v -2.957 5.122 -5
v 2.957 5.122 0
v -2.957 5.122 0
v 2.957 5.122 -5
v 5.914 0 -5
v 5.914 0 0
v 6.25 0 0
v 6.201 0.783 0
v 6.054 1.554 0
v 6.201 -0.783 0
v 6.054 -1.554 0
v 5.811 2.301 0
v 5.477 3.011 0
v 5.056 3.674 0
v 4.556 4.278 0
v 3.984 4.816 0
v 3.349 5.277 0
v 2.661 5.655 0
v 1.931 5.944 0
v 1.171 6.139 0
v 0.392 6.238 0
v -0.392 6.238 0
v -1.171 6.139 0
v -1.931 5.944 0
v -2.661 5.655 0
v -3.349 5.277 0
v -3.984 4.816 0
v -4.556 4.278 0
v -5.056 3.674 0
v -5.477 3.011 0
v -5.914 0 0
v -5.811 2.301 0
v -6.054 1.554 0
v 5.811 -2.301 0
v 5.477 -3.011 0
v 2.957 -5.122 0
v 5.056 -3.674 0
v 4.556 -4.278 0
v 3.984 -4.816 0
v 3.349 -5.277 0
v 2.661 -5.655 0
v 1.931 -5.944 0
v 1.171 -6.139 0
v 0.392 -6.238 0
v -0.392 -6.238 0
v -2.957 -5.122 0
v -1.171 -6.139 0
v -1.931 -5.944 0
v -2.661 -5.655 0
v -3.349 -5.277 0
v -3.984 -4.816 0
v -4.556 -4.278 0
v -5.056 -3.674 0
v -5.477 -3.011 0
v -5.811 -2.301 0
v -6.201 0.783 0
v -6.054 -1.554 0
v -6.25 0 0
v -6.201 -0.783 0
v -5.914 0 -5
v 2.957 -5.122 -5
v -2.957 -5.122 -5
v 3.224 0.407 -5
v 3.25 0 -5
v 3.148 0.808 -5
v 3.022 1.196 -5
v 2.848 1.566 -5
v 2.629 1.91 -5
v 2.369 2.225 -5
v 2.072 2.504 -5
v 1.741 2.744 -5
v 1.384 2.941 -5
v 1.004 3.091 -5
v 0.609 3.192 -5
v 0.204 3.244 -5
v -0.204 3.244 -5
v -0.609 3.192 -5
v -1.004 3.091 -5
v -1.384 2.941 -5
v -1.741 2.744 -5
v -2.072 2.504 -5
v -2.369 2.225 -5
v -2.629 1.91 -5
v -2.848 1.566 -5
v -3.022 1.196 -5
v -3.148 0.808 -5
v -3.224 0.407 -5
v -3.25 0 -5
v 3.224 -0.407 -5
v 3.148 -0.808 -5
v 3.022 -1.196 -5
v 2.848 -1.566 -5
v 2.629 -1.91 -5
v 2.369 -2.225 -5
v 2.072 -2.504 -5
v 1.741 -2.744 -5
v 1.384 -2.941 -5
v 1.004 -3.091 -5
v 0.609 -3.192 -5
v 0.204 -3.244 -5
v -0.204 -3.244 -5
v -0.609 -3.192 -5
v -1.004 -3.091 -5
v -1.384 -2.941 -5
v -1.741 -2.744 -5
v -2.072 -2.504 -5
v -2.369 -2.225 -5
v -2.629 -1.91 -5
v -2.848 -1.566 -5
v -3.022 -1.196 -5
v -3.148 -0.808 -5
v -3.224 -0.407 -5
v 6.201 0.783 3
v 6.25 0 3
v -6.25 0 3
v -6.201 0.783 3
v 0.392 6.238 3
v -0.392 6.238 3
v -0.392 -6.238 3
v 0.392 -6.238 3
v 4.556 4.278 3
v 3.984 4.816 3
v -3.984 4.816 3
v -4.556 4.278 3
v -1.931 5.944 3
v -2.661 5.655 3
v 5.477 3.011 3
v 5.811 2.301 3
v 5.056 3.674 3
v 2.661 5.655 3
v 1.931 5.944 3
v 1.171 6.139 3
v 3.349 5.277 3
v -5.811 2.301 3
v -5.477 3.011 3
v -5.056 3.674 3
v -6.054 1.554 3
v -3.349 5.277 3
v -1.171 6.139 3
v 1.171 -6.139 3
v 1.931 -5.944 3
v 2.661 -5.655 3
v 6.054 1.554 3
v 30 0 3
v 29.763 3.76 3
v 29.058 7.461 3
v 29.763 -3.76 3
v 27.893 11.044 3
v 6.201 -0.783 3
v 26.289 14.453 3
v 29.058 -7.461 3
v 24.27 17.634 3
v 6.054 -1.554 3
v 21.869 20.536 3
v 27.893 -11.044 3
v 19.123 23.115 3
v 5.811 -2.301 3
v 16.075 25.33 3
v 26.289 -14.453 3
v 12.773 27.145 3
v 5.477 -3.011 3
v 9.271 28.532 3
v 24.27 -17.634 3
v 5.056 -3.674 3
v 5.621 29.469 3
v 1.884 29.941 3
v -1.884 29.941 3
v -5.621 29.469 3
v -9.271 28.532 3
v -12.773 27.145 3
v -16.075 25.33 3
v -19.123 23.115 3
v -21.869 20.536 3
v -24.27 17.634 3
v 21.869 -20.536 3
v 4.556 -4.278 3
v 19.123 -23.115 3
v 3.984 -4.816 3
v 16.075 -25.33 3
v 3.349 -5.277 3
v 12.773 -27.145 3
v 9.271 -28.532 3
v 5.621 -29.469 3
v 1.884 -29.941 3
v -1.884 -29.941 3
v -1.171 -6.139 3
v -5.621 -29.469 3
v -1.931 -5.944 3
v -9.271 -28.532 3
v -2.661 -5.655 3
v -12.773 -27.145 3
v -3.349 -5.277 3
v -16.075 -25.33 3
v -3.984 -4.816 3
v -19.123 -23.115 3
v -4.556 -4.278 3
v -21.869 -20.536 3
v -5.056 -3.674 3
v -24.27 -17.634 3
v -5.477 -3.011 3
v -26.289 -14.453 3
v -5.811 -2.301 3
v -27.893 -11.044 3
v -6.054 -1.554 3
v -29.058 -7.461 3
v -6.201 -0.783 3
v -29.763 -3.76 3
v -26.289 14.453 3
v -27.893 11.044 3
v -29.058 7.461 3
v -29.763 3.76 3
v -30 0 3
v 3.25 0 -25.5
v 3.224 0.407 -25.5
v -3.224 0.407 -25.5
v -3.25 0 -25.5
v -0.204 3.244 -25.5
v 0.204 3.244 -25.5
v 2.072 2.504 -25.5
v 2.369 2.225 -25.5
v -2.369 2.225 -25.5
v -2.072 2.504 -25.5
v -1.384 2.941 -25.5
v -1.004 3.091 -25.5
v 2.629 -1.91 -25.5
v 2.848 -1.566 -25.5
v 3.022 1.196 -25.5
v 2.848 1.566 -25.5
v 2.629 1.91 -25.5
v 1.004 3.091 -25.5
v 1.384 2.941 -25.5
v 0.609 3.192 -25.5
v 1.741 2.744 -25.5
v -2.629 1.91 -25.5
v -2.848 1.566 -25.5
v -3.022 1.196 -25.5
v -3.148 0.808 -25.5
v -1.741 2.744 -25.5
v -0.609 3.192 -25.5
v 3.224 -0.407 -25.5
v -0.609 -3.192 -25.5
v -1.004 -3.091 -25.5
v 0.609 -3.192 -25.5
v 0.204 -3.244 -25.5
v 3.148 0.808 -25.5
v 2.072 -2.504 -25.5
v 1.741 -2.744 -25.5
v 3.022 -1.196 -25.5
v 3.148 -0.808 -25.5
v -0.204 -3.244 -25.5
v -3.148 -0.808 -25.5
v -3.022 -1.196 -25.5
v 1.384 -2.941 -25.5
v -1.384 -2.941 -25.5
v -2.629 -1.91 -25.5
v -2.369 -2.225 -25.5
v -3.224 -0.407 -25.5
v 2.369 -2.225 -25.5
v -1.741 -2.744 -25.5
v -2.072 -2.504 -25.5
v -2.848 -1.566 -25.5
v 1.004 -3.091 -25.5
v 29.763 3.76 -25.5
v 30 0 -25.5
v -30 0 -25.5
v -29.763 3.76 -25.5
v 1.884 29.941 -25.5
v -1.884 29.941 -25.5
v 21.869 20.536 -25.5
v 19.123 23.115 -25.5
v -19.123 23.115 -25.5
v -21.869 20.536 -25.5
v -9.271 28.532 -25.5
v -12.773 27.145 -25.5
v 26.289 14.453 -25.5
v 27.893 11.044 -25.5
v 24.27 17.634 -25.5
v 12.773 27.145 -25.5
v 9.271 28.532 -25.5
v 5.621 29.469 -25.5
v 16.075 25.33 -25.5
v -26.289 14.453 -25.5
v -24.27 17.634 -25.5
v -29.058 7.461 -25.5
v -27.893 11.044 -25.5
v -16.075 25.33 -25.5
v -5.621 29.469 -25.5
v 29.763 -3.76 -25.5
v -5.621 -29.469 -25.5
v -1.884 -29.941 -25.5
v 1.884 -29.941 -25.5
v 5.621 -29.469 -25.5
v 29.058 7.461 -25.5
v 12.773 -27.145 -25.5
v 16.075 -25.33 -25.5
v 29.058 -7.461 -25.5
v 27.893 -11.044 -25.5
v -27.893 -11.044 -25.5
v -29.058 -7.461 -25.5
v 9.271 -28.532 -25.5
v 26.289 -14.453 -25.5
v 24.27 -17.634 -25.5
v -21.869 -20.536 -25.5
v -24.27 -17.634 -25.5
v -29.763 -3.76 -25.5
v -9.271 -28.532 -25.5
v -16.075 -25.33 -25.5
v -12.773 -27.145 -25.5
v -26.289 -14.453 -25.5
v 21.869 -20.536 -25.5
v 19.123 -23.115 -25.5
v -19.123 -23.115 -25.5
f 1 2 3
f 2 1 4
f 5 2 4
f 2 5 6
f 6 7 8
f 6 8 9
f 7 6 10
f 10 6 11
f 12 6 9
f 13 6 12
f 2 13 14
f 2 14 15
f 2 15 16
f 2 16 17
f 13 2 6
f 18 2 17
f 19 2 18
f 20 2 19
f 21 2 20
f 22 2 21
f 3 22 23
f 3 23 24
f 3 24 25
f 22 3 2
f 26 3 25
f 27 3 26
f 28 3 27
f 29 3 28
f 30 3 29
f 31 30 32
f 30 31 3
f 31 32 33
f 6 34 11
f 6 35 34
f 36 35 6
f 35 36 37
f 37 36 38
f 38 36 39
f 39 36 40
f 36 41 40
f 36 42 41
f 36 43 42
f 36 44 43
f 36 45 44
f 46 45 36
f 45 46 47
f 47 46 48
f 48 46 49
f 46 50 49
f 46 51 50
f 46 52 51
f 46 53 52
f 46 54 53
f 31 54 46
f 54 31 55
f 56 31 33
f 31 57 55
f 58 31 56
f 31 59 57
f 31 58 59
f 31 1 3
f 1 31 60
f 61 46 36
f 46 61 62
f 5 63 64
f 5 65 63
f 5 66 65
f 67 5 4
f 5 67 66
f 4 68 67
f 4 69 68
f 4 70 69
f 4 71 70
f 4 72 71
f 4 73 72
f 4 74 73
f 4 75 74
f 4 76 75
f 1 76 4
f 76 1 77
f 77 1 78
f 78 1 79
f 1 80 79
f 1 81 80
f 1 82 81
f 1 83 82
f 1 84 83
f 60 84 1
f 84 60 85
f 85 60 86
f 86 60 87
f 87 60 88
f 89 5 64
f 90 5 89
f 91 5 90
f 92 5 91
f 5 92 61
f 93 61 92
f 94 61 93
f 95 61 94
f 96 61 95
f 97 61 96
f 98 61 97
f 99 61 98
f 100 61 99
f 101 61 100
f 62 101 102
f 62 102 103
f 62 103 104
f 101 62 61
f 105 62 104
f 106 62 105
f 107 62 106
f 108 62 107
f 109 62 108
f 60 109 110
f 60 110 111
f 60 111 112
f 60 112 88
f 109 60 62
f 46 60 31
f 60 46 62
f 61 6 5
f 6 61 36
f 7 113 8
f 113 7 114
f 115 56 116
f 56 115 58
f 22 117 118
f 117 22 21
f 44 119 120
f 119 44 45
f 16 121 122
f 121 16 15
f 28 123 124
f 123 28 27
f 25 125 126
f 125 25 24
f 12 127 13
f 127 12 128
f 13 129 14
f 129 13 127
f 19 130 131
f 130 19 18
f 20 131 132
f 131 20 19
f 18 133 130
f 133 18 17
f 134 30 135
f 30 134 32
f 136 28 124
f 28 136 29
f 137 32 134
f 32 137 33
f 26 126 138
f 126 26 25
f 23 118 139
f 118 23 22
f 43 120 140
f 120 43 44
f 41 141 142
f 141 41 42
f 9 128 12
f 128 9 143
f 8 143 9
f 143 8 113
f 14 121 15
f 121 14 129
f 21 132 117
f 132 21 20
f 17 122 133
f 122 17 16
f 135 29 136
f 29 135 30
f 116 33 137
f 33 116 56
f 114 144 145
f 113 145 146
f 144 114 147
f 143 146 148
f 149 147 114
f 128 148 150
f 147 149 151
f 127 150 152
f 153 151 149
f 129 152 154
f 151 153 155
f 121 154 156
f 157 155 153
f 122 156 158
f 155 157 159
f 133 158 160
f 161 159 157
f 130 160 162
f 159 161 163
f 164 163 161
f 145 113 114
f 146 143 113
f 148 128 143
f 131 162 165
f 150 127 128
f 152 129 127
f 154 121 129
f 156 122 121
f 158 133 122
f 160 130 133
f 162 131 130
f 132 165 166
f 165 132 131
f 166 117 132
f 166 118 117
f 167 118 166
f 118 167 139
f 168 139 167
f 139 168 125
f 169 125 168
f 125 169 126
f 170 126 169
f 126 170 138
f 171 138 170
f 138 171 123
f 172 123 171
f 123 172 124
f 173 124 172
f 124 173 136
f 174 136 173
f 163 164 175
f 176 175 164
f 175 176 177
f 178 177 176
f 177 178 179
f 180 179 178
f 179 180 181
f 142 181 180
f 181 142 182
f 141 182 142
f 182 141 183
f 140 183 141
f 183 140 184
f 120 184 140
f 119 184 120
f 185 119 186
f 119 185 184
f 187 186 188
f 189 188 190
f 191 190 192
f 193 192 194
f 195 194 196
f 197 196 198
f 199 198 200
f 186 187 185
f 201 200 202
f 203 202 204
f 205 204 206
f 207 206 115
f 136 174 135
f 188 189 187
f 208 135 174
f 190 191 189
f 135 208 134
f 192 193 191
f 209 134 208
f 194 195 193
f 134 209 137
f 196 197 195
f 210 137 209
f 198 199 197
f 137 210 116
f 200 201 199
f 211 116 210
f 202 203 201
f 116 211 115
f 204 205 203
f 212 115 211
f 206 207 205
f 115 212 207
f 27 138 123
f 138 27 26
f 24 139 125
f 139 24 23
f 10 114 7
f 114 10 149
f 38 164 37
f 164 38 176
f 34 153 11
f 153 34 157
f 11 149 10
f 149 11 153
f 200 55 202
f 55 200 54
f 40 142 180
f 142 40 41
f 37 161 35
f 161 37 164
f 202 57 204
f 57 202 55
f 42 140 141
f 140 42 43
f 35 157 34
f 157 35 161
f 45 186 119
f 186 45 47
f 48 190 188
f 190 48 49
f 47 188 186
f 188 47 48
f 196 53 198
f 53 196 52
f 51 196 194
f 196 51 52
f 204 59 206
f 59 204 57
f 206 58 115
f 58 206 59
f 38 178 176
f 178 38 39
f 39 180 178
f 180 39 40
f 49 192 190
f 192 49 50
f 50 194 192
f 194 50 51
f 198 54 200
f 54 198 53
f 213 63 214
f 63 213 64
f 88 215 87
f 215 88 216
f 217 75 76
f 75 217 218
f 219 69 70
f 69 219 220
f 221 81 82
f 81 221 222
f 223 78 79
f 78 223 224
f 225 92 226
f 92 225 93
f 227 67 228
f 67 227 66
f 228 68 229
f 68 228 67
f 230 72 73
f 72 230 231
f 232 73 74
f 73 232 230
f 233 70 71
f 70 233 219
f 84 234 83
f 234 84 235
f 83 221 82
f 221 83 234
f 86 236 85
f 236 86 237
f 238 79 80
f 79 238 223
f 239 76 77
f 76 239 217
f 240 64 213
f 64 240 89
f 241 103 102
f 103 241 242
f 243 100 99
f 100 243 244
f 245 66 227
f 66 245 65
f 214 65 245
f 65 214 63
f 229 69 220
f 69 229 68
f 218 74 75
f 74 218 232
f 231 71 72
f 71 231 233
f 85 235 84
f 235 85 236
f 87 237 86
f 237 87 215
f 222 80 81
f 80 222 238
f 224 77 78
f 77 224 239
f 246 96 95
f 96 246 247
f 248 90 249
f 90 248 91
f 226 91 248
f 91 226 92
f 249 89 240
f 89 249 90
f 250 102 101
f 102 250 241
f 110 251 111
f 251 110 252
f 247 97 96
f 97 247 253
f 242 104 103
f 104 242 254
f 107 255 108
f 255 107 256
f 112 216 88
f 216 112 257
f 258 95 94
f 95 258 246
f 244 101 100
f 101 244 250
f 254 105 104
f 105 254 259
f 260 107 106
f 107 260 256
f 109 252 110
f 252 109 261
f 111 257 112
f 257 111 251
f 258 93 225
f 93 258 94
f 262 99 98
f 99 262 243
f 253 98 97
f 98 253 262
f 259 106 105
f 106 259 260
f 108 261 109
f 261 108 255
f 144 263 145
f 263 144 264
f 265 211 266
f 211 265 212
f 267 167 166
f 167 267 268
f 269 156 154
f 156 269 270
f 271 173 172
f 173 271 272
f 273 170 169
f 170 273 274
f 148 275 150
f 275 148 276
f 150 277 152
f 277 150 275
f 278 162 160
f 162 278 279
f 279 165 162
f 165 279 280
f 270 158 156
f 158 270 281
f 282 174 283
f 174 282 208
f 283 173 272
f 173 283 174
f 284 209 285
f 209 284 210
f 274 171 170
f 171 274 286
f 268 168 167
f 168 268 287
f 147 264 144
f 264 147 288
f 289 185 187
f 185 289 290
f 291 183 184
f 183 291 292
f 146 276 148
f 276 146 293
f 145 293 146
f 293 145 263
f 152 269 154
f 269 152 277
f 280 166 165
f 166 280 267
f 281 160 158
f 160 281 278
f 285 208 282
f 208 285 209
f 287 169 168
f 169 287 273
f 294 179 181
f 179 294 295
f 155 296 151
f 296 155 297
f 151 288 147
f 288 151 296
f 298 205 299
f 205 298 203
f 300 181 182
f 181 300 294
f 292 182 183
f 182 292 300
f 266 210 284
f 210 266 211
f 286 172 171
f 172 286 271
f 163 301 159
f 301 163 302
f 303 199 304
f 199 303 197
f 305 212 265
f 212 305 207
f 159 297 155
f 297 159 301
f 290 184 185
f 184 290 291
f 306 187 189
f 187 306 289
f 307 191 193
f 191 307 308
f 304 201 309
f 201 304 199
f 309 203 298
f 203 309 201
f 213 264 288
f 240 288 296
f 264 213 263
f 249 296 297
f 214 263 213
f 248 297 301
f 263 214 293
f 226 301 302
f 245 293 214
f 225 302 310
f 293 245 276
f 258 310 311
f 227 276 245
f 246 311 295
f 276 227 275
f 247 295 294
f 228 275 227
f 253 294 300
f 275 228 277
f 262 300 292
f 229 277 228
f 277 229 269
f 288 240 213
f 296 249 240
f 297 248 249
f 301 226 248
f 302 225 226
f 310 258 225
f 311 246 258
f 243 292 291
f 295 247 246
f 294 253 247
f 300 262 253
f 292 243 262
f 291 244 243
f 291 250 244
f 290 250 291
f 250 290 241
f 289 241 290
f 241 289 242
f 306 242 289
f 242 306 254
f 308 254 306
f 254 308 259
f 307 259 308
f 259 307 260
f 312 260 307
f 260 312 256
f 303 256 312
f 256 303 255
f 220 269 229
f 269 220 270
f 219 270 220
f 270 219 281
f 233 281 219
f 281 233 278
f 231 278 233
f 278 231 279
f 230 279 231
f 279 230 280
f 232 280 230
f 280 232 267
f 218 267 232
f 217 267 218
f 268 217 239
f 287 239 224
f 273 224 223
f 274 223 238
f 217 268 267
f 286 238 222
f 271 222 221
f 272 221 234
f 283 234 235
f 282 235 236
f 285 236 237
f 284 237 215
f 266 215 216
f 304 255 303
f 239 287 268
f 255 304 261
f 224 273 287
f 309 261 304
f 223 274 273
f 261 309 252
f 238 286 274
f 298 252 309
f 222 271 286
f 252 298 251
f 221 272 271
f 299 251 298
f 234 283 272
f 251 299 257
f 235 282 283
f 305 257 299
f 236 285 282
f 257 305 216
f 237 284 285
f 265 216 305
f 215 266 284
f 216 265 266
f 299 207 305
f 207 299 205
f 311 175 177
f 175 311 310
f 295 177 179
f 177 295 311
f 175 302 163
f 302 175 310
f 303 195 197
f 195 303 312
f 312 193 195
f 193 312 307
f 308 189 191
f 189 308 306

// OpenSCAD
$fn = 50;


difference() {
	union() {
		translate(v = [0, 0, -25.5000000000]) {
			cylinder(h = 28.5000000000, r = 30.0000000000);
		}
	}
	union() {
		translate(v = [0, 0, 0]) {
			rotate(a = [0, 0, 0]) {
				difference() {
					union() {
						translate(v = [0, 0, -5]) {
							linear_extrude(height = 5) {
								polygon(points = [[5.9142500000, 0.0000000000], [2.9571250000, 5.1218907443], [-2.9571250000, 5.1218907443], [-5.9142500000, 0.0000000000], [-2.9571250000, -5.1218907443], [2.9571250000, -5.1218907443]]);
							}
						}
					}
					union();
				}
			}
		}
		#cylinder(h = 3, r = 6.2500000000);
		#translate(v = [0, 0, -100.0000000000]) {
			cylinder(h = 200, r = 3.2500000000);
		}
	}
}
